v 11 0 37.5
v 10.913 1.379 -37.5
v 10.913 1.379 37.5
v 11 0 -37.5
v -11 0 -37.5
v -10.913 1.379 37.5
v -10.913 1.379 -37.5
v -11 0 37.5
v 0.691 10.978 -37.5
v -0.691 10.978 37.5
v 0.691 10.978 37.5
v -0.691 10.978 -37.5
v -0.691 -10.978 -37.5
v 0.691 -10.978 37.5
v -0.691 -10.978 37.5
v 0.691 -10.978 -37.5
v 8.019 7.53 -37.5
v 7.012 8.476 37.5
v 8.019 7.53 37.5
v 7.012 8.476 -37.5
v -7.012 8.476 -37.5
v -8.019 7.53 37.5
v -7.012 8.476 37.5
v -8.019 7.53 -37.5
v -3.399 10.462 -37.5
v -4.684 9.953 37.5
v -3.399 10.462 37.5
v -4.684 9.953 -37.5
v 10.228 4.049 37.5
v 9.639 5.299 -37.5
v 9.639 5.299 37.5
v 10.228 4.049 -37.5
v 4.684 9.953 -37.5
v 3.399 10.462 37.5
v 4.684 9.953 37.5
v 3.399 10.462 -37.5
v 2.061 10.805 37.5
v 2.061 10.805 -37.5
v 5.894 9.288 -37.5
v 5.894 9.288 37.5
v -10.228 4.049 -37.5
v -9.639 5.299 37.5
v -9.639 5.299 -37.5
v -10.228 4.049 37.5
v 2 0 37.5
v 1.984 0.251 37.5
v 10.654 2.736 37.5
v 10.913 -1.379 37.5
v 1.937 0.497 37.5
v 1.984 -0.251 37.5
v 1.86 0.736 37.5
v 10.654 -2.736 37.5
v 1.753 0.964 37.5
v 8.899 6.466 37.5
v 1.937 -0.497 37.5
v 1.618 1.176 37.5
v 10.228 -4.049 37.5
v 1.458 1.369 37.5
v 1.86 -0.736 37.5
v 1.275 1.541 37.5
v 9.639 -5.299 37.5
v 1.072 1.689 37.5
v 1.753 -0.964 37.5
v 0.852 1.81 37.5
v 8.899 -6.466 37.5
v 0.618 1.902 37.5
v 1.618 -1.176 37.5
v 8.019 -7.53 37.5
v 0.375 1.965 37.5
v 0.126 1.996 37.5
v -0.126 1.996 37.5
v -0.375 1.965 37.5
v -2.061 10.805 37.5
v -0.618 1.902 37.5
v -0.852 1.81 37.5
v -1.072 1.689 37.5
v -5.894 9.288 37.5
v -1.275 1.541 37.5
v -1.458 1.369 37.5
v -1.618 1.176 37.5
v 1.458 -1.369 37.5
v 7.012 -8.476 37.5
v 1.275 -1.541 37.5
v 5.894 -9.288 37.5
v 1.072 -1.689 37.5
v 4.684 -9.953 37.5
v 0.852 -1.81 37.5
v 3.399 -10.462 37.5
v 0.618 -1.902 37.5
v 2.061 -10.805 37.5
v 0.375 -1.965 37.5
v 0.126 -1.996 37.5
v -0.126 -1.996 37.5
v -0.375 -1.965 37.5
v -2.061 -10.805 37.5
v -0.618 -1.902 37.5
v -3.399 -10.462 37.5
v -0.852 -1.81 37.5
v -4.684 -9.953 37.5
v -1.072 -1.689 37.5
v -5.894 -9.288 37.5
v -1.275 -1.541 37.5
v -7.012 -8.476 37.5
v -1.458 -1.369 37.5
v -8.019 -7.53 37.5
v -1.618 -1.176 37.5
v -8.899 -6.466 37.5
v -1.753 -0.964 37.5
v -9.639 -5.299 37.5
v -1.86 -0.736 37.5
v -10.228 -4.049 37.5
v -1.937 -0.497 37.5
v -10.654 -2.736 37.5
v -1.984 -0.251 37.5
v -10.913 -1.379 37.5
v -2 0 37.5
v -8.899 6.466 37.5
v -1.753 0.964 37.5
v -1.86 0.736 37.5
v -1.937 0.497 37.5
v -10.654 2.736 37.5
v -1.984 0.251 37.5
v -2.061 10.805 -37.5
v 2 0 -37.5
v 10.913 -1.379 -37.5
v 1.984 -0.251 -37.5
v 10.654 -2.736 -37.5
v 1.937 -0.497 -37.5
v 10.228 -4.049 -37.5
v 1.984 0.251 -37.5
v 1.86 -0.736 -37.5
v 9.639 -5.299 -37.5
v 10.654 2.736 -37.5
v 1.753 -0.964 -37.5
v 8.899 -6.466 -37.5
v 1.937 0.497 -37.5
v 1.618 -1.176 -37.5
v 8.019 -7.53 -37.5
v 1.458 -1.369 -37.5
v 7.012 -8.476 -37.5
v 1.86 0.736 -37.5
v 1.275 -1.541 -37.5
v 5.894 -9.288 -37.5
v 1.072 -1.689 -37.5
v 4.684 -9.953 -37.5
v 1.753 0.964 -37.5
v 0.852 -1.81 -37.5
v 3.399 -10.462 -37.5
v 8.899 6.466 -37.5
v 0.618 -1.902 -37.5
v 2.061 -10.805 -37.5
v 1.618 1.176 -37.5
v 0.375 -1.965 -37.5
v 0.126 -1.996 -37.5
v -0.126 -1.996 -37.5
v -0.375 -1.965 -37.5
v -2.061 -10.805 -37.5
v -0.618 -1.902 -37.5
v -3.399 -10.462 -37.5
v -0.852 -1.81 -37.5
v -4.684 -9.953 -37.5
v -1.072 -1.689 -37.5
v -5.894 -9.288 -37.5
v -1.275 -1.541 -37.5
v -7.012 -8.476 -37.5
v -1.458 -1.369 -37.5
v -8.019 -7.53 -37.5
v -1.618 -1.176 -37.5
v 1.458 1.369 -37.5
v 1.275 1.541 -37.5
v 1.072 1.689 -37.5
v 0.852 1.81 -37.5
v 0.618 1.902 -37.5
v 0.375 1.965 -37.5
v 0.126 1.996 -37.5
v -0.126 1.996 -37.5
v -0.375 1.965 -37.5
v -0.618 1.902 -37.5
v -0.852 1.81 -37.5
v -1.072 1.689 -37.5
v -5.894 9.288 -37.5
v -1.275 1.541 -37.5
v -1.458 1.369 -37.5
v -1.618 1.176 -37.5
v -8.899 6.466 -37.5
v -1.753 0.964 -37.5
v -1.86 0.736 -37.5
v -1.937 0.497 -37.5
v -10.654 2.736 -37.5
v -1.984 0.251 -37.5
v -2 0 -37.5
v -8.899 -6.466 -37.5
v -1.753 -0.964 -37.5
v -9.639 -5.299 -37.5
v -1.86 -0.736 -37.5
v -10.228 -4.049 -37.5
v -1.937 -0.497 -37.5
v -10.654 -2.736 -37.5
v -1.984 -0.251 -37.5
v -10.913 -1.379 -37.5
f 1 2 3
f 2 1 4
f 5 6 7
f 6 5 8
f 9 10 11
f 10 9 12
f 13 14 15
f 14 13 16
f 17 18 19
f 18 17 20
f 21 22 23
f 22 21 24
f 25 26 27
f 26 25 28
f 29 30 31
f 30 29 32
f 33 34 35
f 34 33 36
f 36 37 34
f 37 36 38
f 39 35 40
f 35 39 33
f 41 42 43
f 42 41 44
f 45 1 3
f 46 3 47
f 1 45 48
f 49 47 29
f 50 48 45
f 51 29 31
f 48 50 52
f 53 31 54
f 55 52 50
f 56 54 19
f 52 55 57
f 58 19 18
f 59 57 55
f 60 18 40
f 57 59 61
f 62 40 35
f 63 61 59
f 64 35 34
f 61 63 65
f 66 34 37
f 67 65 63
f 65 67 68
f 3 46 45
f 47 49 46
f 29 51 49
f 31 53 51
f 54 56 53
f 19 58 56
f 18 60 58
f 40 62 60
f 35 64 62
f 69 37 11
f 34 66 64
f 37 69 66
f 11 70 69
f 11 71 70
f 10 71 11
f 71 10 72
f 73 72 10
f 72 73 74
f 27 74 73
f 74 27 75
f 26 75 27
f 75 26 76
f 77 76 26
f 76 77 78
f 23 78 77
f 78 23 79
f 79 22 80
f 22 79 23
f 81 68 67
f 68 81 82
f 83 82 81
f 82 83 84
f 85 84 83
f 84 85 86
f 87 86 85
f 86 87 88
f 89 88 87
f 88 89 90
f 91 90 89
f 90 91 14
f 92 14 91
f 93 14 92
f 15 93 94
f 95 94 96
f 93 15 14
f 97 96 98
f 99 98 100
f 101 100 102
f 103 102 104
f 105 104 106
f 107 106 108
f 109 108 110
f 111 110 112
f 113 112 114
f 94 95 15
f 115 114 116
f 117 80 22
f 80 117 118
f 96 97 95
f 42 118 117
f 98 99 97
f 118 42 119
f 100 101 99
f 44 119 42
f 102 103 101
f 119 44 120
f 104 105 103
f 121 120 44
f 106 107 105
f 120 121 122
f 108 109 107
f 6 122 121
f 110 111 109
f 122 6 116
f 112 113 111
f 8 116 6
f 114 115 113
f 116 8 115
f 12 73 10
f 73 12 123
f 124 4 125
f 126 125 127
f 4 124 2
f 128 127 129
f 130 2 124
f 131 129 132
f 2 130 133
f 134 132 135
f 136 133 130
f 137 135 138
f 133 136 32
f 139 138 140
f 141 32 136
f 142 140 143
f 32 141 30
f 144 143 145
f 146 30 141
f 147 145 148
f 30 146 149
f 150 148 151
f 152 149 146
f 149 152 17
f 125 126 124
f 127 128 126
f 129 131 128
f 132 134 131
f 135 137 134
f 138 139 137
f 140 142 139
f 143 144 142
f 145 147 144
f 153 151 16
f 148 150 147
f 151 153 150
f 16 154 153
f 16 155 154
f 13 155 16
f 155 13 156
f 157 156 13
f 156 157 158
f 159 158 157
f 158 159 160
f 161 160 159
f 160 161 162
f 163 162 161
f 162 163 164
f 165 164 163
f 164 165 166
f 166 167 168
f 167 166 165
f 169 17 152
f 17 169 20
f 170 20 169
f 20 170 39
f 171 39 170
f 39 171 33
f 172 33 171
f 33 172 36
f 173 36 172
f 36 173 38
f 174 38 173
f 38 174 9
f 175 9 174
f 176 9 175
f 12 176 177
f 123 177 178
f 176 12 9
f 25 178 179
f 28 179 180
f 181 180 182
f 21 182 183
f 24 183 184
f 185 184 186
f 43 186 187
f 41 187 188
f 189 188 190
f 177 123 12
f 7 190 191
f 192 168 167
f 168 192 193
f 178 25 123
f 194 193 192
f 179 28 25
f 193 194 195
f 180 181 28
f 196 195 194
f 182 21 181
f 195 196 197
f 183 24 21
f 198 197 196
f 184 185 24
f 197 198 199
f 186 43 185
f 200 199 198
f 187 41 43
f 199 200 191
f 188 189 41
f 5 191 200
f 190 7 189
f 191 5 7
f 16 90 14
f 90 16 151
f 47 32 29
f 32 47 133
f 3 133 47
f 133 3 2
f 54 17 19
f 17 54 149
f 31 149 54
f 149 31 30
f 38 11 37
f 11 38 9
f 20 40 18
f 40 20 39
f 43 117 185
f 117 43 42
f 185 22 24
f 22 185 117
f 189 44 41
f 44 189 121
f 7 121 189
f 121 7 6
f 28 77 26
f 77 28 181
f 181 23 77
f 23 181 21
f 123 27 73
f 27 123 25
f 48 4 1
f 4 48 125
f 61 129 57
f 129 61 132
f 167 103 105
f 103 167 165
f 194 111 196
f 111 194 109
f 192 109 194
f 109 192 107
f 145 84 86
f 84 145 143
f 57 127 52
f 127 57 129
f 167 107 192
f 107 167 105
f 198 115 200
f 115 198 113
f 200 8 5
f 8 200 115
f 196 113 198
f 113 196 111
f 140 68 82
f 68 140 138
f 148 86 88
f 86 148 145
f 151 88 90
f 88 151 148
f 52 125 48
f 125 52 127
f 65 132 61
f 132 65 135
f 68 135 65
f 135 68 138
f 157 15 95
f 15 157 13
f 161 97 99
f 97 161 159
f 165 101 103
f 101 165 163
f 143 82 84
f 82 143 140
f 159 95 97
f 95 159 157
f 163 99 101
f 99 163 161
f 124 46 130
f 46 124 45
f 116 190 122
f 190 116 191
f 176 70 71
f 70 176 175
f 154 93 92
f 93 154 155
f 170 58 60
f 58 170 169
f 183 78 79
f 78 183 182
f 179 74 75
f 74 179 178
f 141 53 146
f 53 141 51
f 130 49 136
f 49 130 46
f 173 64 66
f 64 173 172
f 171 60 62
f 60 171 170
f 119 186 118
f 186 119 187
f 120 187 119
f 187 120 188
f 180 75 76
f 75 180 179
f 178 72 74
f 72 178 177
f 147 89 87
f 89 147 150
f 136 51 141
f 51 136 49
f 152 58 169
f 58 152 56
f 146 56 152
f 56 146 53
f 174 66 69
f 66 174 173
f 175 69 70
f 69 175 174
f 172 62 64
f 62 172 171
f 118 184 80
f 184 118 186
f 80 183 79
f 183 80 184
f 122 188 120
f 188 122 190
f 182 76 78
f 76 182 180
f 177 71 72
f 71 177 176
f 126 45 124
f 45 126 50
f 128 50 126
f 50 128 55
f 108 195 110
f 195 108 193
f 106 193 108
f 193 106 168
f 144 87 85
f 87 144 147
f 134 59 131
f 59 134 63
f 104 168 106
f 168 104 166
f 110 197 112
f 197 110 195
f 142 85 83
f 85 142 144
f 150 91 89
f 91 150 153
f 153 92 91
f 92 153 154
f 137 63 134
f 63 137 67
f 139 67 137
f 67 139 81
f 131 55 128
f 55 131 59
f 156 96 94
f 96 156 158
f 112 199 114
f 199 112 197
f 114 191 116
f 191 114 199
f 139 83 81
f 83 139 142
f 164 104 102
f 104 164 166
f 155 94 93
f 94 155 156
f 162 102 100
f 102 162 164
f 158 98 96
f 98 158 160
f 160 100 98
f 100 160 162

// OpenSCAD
$fn = 50;


difference() {
	union() {
		translate(v = [0, 0, -37.5000000000]) {
			cylinder(h = 75, r = 11.0000000000);
		}
	}
	union() {
		translate(v = [0, 0, -100.0000000000]) {
			cylinder(h = 200, r = 2);
		}
	}
}
